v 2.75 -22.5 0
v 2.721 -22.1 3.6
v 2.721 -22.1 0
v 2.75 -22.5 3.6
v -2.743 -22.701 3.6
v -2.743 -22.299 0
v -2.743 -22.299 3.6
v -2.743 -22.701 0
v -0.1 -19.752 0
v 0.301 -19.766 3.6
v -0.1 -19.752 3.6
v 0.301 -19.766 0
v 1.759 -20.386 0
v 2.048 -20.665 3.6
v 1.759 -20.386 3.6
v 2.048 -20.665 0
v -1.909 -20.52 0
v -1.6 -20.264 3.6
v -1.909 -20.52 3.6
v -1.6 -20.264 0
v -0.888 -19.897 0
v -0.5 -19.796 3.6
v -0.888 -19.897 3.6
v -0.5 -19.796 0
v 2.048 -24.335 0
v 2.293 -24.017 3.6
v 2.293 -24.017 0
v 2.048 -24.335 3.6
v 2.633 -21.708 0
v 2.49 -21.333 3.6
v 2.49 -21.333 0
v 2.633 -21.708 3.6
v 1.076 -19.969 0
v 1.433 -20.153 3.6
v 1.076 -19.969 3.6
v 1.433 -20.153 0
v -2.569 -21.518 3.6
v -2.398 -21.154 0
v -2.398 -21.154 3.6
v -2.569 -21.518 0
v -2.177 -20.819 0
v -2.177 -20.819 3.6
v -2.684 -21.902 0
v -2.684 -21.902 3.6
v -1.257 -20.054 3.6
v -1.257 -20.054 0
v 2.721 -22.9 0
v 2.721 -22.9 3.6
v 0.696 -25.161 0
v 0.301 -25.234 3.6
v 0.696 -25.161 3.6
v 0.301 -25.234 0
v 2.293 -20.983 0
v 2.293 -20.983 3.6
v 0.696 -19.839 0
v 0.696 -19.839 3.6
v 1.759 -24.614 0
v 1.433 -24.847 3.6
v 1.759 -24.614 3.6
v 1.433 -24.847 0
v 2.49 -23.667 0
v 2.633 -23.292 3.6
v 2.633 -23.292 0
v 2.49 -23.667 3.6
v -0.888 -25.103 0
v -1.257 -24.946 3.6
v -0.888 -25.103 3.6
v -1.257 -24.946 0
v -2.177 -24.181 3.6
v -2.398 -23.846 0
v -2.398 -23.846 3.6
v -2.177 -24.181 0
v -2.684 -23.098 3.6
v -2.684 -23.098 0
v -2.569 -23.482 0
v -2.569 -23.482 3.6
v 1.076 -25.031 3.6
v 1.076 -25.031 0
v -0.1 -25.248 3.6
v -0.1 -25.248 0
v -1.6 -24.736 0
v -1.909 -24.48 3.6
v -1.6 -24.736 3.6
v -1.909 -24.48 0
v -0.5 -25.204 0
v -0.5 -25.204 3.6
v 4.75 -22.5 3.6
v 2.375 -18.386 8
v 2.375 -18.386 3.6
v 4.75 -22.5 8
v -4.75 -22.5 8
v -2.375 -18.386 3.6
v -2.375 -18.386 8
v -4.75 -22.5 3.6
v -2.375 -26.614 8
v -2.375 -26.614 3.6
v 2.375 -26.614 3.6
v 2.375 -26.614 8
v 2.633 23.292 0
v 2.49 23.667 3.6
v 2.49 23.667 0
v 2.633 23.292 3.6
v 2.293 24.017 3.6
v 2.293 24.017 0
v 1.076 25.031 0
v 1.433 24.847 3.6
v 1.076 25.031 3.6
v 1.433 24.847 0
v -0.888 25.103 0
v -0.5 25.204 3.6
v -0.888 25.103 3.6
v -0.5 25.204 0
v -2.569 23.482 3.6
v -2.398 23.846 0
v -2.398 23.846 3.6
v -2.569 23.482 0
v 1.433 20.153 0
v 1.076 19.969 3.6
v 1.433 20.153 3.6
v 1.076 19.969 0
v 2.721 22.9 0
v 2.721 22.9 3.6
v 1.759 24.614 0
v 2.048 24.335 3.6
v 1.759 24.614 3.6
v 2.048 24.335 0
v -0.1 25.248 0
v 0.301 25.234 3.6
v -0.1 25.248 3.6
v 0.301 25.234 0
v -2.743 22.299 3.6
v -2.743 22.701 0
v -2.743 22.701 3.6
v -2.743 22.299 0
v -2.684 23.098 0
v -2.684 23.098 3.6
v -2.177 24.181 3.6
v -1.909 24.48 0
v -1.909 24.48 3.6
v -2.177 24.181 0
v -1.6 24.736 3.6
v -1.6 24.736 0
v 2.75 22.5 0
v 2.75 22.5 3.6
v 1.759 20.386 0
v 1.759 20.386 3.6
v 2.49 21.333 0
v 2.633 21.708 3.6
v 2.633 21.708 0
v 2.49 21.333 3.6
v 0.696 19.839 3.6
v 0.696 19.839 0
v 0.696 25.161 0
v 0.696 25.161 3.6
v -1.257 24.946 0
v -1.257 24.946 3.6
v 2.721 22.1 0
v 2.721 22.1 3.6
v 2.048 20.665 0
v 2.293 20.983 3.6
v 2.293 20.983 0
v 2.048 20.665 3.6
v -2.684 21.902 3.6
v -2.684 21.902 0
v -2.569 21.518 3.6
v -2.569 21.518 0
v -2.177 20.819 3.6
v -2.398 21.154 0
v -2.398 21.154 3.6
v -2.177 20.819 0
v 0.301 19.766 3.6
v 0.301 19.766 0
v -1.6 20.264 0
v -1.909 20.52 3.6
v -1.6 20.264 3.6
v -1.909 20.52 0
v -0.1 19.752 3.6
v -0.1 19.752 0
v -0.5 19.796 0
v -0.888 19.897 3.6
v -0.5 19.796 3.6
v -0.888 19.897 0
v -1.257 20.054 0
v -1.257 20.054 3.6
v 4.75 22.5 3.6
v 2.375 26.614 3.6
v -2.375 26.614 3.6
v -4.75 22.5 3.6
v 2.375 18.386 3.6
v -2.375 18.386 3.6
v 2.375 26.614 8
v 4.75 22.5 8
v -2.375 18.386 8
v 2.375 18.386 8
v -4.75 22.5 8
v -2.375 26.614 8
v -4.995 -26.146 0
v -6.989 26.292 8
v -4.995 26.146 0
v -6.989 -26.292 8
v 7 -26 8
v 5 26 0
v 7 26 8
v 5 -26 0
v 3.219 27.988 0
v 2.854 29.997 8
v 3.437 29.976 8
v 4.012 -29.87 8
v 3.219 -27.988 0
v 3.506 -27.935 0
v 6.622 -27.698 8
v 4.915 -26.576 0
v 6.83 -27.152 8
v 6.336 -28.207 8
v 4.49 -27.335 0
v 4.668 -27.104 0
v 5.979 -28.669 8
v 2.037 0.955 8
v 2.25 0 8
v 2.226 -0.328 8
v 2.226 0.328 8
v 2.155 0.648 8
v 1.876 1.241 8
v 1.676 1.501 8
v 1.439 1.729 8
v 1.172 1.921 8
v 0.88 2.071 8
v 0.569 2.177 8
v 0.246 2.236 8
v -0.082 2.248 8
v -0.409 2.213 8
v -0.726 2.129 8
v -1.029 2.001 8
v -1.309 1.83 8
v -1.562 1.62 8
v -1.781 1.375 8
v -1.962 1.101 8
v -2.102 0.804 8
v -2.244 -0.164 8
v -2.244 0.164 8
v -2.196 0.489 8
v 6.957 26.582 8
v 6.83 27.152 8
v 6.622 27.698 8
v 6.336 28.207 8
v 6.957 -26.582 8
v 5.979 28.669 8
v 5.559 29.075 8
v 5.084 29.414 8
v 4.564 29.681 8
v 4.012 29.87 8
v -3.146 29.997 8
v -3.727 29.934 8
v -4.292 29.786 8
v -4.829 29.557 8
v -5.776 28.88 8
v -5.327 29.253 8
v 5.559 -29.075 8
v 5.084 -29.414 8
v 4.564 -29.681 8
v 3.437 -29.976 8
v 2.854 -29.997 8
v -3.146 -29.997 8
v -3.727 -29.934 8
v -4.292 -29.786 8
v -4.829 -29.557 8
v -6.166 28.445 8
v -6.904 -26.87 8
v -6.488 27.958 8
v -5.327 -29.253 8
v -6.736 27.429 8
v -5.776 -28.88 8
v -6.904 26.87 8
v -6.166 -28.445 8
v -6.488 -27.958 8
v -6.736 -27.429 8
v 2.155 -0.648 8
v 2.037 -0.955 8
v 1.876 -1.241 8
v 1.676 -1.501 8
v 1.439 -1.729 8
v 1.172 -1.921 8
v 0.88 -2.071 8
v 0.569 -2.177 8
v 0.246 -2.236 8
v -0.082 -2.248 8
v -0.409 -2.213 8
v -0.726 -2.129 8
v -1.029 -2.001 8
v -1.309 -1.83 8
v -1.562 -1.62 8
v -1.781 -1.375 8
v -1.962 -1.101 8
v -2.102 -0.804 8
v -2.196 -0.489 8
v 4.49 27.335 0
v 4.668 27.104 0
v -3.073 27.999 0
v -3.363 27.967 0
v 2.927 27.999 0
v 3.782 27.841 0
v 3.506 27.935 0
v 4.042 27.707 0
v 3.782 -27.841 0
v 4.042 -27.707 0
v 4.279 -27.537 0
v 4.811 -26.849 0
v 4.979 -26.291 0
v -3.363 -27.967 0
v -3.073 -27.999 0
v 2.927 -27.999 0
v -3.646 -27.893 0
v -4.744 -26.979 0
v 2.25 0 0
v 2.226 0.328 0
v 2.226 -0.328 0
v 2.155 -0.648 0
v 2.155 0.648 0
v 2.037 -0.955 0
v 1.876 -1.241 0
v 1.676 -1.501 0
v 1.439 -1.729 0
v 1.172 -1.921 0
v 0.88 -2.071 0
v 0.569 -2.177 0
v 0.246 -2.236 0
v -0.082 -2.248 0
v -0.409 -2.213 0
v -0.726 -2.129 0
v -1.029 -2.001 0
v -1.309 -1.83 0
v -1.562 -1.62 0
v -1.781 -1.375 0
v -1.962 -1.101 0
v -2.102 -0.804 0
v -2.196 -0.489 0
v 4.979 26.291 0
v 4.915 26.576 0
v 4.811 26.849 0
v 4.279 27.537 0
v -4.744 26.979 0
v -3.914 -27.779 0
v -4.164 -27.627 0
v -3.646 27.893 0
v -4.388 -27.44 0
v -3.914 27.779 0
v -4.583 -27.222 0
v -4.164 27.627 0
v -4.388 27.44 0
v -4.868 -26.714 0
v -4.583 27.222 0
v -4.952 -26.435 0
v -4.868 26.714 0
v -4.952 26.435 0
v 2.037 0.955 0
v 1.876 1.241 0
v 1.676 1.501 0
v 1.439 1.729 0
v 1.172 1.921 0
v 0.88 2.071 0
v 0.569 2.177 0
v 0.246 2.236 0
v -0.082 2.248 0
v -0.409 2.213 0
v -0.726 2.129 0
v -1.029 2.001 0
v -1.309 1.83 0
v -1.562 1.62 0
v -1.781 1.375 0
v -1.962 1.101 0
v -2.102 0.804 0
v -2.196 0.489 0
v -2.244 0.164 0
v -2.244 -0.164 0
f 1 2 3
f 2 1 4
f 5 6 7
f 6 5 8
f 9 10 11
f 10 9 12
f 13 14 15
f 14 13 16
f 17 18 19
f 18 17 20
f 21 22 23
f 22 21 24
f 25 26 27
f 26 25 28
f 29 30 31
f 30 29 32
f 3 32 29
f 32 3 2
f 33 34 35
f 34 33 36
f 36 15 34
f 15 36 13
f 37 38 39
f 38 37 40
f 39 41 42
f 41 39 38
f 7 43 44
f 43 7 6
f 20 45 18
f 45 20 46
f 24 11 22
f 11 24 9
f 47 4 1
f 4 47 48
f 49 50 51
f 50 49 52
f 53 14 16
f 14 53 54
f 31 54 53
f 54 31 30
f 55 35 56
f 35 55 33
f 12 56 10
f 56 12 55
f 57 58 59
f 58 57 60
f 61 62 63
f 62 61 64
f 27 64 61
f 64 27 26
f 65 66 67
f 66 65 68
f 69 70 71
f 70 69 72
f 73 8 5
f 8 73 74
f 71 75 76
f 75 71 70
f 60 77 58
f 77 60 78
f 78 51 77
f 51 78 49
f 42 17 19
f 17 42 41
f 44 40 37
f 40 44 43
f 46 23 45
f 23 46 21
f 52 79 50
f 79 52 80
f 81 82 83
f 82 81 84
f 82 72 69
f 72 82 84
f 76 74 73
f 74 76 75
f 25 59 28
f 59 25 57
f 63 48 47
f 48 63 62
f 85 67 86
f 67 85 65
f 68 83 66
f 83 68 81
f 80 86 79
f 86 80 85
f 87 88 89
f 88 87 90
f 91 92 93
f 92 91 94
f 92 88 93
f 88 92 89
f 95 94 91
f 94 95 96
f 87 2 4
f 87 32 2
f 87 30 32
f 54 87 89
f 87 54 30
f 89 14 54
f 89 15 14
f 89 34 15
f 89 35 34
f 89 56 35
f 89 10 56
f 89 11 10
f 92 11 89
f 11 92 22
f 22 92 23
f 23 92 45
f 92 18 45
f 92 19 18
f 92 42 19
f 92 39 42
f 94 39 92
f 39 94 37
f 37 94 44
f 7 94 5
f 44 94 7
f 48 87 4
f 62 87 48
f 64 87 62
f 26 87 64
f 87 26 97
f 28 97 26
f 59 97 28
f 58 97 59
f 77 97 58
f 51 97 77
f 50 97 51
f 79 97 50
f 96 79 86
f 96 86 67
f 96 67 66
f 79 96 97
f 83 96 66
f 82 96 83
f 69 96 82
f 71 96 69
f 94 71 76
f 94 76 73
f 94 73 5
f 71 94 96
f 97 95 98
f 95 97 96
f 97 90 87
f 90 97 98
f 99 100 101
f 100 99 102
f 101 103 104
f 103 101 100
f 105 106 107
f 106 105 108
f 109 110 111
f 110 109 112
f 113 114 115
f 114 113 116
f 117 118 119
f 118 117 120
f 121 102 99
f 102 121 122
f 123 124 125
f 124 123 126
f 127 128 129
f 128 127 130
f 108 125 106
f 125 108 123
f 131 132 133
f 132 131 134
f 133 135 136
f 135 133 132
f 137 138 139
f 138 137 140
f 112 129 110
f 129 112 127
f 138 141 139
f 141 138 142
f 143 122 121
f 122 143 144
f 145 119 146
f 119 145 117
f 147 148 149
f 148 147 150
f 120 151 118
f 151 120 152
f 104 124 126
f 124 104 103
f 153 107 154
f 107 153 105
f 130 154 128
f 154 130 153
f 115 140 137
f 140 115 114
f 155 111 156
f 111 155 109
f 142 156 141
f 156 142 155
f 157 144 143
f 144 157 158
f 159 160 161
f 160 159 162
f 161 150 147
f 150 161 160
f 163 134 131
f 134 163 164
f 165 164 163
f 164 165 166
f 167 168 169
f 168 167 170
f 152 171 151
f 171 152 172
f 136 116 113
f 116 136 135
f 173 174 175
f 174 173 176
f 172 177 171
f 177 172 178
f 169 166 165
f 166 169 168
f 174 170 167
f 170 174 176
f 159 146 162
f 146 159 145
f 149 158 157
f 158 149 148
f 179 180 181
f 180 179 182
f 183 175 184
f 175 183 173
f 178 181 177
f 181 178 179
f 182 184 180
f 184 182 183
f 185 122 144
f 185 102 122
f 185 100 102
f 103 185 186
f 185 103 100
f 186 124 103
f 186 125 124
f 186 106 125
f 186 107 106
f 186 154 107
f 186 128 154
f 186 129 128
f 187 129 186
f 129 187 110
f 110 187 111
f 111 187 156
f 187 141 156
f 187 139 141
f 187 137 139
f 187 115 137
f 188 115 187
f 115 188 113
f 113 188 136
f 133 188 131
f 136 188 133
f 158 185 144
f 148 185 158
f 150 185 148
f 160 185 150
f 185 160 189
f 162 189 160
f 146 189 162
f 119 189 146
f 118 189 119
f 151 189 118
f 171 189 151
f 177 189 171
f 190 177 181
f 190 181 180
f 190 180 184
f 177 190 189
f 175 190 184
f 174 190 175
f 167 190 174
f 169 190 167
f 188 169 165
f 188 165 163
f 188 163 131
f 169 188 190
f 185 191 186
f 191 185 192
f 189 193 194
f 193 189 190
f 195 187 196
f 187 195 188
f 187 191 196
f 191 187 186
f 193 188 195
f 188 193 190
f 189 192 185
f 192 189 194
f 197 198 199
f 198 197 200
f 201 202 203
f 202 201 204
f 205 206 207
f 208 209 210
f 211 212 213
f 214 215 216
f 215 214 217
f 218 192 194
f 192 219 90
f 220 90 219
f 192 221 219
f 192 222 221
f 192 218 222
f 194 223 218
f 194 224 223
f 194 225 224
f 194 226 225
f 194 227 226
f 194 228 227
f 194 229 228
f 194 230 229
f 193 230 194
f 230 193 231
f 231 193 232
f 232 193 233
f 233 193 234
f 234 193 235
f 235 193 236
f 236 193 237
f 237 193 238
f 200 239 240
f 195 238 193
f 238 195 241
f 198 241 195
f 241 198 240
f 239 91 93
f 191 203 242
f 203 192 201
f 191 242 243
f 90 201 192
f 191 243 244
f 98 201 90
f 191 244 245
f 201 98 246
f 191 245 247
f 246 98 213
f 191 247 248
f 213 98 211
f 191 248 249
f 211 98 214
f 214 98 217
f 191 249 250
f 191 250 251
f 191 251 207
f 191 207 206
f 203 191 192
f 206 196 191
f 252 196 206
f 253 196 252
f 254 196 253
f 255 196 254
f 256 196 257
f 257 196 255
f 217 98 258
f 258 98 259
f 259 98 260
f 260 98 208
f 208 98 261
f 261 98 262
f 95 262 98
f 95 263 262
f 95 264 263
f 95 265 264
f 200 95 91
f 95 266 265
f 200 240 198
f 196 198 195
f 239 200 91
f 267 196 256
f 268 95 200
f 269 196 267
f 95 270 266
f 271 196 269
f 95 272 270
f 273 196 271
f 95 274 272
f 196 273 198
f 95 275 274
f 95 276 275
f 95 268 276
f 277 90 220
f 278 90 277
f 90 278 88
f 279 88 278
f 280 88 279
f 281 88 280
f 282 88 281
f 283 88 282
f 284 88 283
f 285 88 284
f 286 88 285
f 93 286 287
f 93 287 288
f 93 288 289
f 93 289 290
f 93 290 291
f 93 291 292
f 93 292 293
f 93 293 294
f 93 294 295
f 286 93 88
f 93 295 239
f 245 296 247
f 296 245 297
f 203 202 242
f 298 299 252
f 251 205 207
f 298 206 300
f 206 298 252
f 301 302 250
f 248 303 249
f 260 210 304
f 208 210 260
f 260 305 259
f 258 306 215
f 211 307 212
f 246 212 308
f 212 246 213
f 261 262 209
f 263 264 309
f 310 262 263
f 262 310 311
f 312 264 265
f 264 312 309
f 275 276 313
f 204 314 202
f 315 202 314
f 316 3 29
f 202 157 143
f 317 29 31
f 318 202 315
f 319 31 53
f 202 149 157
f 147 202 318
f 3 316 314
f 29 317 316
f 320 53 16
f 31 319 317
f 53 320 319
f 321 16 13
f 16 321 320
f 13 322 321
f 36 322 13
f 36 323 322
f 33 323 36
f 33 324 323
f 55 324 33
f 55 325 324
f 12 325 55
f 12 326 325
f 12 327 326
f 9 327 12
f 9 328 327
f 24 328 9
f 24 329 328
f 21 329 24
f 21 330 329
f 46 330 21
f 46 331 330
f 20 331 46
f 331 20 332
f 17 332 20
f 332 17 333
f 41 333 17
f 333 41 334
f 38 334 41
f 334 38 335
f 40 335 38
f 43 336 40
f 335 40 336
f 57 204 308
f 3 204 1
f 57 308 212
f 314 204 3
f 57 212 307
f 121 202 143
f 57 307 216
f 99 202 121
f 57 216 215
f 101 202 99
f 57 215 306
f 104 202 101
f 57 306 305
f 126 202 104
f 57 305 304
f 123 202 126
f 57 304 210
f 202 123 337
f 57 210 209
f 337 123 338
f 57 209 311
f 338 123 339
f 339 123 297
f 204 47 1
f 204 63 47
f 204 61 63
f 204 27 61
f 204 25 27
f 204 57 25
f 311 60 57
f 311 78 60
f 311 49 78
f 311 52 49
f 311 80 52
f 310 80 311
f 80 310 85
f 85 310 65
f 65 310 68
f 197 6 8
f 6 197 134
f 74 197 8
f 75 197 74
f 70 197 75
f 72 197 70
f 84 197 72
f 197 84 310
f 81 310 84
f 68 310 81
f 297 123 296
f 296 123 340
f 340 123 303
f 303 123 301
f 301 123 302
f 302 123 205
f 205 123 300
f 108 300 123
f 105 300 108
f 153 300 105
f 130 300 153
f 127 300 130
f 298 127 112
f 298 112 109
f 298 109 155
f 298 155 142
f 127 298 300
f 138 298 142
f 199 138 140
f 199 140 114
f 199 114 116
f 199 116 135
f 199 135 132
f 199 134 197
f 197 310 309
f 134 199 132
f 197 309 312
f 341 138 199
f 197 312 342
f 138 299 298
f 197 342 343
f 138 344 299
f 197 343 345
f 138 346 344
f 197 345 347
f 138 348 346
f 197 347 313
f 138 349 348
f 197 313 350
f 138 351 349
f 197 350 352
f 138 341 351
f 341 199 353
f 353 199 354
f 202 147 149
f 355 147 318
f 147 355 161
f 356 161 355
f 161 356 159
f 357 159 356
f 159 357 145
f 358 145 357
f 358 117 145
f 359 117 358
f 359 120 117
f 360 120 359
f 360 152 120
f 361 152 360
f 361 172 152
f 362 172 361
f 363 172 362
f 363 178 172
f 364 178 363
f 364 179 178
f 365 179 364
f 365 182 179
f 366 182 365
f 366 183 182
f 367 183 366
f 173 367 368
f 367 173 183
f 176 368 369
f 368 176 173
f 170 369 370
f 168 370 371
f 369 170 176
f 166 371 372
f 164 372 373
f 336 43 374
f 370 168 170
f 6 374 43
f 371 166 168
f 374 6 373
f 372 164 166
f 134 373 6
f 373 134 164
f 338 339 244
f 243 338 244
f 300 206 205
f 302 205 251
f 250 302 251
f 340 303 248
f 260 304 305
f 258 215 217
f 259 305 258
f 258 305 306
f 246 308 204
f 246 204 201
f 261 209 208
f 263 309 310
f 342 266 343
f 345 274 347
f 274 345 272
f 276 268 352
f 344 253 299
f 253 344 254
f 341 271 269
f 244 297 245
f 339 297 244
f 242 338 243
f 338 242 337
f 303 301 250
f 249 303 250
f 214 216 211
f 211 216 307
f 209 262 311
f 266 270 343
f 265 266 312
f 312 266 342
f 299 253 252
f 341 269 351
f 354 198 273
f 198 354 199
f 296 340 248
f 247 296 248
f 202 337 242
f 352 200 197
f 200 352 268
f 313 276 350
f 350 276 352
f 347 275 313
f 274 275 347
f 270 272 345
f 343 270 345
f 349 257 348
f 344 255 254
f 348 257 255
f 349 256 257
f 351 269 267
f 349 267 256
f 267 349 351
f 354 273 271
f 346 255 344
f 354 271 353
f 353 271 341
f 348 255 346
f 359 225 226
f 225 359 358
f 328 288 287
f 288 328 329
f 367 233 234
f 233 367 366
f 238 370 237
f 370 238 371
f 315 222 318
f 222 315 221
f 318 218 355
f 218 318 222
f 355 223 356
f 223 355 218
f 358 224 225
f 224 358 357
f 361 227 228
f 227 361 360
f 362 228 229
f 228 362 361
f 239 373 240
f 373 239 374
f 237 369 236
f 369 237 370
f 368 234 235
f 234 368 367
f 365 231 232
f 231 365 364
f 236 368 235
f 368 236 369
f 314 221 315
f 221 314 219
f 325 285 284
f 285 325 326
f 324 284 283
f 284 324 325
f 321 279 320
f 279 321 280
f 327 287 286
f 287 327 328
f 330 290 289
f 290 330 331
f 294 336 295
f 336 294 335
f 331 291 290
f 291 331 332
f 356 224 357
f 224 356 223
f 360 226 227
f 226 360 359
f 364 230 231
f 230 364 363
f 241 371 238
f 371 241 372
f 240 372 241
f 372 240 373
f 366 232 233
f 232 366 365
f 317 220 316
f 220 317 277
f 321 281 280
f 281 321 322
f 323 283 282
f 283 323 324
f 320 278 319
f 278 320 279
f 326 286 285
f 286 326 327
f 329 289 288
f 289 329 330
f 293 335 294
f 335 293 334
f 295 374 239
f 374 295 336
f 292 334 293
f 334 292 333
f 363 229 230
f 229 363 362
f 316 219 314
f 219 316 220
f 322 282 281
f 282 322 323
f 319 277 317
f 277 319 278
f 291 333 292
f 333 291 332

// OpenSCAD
$fn=43;
dist_boardmount=22.86;
rad=4;

difference() {
	hull() {
		for (j=[-1,1]) {
			for (i=[-1,1]) {
				translate([i*(7-rad),j*(30-rad),0])
					cylinder(r2=rad, r1=rad-2, h=8);
			}
		}
	}
	
	// Zentrales M4 Loch
	cylinder(d=4.5, h=100, center=true);
	
	// M5 Spannschrauben + Muttern
	for (i=[-1,1]) {
		translate([0,i*(45/2),0])
			cylinder(d=5.5, h=100, center=true);
		translate([0,i*(45/2),8-4.4])
			cylinder($fn=6, d=9.5, h=100);
	}
	
}
